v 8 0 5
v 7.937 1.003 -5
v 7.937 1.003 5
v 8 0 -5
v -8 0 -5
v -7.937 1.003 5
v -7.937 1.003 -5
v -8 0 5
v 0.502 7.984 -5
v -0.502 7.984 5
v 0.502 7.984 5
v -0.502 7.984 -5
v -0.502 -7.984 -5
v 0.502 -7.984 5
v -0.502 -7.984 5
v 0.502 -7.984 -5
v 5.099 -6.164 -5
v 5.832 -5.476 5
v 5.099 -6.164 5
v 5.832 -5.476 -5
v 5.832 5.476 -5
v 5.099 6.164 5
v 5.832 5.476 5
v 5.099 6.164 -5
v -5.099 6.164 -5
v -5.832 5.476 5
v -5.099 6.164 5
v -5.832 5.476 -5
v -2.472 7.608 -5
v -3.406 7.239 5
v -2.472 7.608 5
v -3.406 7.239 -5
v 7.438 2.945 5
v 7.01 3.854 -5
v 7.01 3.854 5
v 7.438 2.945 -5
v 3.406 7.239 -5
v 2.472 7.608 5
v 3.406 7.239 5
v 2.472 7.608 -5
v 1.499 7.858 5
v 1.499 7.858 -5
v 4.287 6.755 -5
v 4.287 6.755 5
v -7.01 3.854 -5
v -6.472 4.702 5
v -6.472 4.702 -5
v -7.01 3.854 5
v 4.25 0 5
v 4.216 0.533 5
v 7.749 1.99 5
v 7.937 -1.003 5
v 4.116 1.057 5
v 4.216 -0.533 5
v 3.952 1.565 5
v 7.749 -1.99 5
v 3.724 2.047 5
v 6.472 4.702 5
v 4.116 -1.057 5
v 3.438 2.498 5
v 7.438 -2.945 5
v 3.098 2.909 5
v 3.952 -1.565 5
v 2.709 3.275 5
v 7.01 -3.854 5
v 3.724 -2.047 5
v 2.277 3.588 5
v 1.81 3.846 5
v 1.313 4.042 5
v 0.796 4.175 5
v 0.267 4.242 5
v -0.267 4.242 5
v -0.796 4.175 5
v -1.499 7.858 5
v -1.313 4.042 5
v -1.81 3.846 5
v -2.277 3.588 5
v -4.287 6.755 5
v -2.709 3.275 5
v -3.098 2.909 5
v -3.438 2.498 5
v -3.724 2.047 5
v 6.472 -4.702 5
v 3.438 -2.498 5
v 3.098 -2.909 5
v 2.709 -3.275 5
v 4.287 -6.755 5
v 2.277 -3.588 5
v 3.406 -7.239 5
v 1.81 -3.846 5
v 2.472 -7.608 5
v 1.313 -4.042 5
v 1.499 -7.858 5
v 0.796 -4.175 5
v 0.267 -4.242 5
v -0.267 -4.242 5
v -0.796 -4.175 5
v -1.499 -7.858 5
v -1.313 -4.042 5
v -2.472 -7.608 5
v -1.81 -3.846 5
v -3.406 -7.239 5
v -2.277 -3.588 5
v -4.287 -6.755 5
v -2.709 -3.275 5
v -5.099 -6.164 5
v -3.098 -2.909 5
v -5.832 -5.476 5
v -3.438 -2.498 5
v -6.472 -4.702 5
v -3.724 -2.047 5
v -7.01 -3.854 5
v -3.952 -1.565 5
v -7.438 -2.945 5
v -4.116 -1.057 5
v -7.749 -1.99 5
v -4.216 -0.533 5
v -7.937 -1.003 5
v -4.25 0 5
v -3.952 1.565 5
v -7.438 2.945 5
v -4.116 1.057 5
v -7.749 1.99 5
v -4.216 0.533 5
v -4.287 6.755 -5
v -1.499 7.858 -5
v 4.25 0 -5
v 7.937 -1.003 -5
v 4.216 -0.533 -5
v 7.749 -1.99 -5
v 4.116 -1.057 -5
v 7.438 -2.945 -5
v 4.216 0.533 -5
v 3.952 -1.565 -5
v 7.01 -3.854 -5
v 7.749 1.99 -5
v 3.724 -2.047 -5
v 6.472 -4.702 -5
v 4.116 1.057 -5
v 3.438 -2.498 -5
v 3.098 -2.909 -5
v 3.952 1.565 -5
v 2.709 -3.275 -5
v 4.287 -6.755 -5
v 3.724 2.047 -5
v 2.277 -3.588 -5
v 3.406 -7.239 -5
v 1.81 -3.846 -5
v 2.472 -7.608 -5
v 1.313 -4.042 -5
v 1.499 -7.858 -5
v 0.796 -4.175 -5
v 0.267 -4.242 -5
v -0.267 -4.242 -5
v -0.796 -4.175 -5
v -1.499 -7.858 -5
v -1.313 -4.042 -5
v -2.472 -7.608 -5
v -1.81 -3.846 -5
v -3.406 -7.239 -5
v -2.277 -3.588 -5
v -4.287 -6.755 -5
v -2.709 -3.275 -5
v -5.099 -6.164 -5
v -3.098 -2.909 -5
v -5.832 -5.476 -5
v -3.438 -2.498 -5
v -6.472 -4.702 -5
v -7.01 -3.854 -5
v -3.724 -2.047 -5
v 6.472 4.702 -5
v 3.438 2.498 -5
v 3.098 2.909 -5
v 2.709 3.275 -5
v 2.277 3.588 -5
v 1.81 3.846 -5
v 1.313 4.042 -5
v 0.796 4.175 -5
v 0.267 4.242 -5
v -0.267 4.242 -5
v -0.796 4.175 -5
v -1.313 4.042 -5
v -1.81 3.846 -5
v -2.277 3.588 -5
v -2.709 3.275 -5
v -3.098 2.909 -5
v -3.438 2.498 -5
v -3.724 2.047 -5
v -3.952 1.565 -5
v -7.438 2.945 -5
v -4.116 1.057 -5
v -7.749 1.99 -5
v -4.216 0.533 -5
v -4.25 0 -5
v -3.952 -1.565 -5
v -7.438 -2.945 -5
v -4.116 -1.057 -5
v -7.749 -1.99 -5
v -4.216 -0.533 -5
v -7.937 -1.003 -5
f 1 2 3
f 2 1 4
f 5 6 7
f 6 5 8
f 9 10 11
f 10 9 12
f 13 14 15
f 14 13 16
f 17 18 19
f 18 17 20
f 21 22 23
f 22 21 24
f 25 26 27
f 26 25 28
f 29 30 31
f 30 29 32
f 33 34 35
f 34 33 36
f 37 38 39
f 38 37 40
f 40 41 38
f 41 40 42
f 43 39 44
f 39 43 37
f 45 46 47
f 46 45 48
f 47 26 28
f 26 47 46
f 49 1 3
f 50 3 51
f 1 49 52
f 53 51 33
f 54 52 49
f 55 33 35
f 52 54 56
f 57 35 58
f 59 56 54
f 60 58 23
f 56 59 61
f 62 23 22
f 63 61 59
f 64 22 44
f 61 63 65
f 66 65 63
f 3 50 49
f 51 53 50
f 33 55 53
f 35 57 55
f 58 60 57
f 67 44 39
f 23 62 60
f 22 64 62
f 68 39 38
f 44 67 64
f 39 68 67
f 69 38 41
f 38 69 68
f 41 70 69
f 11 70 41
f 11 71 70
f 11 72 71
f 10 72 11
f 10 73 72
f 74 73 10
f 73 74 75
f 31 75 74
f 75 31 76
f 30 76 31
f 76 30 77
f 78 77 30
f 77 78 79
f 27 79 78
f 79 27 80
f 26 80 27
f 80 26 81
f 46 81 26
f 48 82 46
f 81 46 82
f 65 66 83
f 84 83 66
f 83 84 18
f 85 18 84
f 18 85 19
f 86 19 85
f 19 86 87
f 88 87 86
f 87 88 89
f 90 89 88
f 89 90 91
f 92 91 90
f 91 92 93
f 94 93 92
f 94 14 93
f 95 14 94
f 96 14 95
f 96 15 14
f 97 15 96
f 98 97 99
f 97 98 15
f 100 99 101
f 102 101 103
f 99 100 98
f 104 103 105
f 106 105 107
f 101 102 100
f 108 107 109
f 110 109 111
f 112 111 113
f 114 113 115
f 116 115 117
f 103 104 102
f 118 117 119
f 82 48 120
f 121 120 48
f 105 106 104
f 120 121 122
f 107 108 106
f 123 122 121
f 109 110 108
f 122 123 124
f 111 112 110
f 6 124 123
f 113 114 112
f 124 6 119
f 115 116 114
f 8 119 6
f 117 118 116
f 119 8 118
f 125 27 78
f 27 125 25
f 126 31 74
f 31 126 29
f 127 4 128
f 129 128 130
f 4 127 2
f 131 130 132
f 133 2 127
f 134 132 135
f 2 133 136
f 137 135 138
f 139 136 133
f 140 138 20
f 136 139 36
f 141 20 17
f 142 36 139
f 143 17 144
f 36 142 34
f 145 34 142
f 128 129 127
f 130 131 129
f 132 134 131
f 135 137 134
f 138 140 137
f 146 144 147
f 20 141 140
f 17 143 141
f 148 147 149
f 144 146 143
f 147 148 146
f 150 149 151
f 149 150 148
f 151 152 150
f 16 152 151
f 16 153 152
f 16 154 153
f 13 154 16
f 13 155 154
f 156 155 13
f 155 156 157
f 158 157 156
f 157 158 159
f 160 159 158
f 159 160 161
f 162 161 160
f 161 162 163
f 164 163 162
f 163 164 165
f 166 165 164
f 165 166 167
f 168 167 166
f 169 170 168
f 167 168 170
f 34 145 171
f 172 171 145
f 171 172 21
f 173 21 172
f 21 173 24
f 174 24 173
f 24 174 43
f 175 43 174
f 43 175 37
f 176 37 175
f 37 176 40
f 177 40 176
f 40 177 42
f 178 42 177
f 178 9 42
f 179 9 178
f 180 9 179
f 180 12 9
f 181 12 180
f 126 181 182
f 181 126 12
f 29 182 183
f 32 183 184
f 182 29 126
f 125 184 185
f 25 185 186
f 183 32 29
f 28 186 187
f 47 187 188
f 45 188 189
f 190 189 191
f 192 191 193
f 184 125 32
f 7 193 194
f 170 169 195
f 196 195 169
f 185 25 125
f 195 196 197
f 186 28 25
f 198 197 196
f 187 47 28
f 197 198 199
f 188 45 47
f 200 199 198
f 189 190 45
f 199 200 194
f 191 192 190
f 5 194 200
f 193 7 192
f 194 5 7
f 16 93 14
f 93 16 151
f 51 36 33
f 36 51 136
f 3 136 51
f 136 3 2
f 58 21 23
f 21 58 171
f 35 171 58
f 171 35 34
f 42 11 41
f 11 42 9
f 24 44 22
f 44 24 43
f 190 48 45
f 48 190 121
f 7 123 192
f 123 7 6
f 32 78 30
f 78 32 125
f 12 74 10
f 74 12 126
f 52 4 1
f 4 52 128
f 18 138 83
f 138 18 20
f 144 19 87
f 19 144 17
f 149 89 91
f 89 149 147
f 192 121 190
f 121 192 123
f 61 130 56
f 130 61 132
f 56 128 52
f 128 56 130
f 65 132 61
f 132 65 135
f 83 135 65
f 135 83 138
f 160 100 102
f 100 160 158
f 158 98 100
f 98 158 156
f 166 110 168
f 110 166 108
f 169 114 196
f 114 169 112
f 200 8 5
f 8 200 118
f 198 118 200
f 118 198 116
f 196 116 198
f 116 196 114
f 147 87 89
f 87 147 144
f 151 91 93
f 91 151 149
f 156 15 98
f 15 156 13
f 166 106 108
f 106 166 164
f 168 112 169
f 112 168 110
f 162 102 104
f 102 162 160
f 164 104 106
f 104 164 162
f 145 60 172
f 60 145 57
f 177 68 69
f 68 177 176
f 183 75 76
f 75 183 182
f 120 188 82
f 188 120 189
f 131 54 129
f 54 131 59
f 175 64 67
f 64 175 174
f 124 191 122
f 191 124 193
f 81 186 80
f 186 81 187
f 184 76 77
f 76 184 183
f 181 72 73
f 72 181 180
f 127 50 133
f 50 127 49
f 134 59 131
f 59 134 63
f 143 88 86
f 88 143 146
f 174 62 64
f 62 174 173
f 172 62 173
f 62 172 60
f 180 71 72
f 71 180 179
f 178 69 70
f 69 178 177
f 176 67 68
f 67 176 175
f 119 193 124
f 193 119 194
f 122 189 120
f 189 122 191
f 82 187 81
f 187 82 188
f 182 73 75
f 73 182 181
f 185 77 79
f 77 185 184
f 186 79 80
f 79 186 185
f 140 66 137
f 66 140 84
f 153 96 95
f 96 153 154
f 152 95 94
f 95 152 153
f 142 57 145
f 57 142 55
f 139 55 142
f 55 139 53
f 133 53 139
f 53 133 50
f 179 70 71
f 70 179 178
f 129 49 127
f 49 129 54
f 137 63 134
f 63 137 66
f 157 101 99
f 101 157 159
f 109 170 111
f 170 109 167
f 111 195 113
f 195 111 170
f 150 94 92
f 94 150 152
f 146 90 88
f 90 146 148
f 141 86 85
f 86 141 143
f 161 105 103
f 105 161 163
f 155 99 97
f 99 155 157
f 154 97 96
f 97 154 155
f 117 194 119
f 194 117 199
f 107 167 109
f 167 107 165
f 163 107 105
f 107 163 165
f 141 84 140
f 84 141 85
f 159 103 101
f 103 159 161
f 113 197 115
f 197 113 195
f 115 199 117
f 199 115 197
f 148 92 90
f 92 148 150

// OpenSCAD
$fn = 50;


difference() {
	union() {
		translate(v = [0, 0, -5.0000000000]) {
			cylinder(h = 10, r = 8.0000000000);
		}
	}
	union() {
		translate(v = [0, 0, -100.0000000000]) {
			cylinder(h = 200, r = 4.2500000000);
		}
	}
}
